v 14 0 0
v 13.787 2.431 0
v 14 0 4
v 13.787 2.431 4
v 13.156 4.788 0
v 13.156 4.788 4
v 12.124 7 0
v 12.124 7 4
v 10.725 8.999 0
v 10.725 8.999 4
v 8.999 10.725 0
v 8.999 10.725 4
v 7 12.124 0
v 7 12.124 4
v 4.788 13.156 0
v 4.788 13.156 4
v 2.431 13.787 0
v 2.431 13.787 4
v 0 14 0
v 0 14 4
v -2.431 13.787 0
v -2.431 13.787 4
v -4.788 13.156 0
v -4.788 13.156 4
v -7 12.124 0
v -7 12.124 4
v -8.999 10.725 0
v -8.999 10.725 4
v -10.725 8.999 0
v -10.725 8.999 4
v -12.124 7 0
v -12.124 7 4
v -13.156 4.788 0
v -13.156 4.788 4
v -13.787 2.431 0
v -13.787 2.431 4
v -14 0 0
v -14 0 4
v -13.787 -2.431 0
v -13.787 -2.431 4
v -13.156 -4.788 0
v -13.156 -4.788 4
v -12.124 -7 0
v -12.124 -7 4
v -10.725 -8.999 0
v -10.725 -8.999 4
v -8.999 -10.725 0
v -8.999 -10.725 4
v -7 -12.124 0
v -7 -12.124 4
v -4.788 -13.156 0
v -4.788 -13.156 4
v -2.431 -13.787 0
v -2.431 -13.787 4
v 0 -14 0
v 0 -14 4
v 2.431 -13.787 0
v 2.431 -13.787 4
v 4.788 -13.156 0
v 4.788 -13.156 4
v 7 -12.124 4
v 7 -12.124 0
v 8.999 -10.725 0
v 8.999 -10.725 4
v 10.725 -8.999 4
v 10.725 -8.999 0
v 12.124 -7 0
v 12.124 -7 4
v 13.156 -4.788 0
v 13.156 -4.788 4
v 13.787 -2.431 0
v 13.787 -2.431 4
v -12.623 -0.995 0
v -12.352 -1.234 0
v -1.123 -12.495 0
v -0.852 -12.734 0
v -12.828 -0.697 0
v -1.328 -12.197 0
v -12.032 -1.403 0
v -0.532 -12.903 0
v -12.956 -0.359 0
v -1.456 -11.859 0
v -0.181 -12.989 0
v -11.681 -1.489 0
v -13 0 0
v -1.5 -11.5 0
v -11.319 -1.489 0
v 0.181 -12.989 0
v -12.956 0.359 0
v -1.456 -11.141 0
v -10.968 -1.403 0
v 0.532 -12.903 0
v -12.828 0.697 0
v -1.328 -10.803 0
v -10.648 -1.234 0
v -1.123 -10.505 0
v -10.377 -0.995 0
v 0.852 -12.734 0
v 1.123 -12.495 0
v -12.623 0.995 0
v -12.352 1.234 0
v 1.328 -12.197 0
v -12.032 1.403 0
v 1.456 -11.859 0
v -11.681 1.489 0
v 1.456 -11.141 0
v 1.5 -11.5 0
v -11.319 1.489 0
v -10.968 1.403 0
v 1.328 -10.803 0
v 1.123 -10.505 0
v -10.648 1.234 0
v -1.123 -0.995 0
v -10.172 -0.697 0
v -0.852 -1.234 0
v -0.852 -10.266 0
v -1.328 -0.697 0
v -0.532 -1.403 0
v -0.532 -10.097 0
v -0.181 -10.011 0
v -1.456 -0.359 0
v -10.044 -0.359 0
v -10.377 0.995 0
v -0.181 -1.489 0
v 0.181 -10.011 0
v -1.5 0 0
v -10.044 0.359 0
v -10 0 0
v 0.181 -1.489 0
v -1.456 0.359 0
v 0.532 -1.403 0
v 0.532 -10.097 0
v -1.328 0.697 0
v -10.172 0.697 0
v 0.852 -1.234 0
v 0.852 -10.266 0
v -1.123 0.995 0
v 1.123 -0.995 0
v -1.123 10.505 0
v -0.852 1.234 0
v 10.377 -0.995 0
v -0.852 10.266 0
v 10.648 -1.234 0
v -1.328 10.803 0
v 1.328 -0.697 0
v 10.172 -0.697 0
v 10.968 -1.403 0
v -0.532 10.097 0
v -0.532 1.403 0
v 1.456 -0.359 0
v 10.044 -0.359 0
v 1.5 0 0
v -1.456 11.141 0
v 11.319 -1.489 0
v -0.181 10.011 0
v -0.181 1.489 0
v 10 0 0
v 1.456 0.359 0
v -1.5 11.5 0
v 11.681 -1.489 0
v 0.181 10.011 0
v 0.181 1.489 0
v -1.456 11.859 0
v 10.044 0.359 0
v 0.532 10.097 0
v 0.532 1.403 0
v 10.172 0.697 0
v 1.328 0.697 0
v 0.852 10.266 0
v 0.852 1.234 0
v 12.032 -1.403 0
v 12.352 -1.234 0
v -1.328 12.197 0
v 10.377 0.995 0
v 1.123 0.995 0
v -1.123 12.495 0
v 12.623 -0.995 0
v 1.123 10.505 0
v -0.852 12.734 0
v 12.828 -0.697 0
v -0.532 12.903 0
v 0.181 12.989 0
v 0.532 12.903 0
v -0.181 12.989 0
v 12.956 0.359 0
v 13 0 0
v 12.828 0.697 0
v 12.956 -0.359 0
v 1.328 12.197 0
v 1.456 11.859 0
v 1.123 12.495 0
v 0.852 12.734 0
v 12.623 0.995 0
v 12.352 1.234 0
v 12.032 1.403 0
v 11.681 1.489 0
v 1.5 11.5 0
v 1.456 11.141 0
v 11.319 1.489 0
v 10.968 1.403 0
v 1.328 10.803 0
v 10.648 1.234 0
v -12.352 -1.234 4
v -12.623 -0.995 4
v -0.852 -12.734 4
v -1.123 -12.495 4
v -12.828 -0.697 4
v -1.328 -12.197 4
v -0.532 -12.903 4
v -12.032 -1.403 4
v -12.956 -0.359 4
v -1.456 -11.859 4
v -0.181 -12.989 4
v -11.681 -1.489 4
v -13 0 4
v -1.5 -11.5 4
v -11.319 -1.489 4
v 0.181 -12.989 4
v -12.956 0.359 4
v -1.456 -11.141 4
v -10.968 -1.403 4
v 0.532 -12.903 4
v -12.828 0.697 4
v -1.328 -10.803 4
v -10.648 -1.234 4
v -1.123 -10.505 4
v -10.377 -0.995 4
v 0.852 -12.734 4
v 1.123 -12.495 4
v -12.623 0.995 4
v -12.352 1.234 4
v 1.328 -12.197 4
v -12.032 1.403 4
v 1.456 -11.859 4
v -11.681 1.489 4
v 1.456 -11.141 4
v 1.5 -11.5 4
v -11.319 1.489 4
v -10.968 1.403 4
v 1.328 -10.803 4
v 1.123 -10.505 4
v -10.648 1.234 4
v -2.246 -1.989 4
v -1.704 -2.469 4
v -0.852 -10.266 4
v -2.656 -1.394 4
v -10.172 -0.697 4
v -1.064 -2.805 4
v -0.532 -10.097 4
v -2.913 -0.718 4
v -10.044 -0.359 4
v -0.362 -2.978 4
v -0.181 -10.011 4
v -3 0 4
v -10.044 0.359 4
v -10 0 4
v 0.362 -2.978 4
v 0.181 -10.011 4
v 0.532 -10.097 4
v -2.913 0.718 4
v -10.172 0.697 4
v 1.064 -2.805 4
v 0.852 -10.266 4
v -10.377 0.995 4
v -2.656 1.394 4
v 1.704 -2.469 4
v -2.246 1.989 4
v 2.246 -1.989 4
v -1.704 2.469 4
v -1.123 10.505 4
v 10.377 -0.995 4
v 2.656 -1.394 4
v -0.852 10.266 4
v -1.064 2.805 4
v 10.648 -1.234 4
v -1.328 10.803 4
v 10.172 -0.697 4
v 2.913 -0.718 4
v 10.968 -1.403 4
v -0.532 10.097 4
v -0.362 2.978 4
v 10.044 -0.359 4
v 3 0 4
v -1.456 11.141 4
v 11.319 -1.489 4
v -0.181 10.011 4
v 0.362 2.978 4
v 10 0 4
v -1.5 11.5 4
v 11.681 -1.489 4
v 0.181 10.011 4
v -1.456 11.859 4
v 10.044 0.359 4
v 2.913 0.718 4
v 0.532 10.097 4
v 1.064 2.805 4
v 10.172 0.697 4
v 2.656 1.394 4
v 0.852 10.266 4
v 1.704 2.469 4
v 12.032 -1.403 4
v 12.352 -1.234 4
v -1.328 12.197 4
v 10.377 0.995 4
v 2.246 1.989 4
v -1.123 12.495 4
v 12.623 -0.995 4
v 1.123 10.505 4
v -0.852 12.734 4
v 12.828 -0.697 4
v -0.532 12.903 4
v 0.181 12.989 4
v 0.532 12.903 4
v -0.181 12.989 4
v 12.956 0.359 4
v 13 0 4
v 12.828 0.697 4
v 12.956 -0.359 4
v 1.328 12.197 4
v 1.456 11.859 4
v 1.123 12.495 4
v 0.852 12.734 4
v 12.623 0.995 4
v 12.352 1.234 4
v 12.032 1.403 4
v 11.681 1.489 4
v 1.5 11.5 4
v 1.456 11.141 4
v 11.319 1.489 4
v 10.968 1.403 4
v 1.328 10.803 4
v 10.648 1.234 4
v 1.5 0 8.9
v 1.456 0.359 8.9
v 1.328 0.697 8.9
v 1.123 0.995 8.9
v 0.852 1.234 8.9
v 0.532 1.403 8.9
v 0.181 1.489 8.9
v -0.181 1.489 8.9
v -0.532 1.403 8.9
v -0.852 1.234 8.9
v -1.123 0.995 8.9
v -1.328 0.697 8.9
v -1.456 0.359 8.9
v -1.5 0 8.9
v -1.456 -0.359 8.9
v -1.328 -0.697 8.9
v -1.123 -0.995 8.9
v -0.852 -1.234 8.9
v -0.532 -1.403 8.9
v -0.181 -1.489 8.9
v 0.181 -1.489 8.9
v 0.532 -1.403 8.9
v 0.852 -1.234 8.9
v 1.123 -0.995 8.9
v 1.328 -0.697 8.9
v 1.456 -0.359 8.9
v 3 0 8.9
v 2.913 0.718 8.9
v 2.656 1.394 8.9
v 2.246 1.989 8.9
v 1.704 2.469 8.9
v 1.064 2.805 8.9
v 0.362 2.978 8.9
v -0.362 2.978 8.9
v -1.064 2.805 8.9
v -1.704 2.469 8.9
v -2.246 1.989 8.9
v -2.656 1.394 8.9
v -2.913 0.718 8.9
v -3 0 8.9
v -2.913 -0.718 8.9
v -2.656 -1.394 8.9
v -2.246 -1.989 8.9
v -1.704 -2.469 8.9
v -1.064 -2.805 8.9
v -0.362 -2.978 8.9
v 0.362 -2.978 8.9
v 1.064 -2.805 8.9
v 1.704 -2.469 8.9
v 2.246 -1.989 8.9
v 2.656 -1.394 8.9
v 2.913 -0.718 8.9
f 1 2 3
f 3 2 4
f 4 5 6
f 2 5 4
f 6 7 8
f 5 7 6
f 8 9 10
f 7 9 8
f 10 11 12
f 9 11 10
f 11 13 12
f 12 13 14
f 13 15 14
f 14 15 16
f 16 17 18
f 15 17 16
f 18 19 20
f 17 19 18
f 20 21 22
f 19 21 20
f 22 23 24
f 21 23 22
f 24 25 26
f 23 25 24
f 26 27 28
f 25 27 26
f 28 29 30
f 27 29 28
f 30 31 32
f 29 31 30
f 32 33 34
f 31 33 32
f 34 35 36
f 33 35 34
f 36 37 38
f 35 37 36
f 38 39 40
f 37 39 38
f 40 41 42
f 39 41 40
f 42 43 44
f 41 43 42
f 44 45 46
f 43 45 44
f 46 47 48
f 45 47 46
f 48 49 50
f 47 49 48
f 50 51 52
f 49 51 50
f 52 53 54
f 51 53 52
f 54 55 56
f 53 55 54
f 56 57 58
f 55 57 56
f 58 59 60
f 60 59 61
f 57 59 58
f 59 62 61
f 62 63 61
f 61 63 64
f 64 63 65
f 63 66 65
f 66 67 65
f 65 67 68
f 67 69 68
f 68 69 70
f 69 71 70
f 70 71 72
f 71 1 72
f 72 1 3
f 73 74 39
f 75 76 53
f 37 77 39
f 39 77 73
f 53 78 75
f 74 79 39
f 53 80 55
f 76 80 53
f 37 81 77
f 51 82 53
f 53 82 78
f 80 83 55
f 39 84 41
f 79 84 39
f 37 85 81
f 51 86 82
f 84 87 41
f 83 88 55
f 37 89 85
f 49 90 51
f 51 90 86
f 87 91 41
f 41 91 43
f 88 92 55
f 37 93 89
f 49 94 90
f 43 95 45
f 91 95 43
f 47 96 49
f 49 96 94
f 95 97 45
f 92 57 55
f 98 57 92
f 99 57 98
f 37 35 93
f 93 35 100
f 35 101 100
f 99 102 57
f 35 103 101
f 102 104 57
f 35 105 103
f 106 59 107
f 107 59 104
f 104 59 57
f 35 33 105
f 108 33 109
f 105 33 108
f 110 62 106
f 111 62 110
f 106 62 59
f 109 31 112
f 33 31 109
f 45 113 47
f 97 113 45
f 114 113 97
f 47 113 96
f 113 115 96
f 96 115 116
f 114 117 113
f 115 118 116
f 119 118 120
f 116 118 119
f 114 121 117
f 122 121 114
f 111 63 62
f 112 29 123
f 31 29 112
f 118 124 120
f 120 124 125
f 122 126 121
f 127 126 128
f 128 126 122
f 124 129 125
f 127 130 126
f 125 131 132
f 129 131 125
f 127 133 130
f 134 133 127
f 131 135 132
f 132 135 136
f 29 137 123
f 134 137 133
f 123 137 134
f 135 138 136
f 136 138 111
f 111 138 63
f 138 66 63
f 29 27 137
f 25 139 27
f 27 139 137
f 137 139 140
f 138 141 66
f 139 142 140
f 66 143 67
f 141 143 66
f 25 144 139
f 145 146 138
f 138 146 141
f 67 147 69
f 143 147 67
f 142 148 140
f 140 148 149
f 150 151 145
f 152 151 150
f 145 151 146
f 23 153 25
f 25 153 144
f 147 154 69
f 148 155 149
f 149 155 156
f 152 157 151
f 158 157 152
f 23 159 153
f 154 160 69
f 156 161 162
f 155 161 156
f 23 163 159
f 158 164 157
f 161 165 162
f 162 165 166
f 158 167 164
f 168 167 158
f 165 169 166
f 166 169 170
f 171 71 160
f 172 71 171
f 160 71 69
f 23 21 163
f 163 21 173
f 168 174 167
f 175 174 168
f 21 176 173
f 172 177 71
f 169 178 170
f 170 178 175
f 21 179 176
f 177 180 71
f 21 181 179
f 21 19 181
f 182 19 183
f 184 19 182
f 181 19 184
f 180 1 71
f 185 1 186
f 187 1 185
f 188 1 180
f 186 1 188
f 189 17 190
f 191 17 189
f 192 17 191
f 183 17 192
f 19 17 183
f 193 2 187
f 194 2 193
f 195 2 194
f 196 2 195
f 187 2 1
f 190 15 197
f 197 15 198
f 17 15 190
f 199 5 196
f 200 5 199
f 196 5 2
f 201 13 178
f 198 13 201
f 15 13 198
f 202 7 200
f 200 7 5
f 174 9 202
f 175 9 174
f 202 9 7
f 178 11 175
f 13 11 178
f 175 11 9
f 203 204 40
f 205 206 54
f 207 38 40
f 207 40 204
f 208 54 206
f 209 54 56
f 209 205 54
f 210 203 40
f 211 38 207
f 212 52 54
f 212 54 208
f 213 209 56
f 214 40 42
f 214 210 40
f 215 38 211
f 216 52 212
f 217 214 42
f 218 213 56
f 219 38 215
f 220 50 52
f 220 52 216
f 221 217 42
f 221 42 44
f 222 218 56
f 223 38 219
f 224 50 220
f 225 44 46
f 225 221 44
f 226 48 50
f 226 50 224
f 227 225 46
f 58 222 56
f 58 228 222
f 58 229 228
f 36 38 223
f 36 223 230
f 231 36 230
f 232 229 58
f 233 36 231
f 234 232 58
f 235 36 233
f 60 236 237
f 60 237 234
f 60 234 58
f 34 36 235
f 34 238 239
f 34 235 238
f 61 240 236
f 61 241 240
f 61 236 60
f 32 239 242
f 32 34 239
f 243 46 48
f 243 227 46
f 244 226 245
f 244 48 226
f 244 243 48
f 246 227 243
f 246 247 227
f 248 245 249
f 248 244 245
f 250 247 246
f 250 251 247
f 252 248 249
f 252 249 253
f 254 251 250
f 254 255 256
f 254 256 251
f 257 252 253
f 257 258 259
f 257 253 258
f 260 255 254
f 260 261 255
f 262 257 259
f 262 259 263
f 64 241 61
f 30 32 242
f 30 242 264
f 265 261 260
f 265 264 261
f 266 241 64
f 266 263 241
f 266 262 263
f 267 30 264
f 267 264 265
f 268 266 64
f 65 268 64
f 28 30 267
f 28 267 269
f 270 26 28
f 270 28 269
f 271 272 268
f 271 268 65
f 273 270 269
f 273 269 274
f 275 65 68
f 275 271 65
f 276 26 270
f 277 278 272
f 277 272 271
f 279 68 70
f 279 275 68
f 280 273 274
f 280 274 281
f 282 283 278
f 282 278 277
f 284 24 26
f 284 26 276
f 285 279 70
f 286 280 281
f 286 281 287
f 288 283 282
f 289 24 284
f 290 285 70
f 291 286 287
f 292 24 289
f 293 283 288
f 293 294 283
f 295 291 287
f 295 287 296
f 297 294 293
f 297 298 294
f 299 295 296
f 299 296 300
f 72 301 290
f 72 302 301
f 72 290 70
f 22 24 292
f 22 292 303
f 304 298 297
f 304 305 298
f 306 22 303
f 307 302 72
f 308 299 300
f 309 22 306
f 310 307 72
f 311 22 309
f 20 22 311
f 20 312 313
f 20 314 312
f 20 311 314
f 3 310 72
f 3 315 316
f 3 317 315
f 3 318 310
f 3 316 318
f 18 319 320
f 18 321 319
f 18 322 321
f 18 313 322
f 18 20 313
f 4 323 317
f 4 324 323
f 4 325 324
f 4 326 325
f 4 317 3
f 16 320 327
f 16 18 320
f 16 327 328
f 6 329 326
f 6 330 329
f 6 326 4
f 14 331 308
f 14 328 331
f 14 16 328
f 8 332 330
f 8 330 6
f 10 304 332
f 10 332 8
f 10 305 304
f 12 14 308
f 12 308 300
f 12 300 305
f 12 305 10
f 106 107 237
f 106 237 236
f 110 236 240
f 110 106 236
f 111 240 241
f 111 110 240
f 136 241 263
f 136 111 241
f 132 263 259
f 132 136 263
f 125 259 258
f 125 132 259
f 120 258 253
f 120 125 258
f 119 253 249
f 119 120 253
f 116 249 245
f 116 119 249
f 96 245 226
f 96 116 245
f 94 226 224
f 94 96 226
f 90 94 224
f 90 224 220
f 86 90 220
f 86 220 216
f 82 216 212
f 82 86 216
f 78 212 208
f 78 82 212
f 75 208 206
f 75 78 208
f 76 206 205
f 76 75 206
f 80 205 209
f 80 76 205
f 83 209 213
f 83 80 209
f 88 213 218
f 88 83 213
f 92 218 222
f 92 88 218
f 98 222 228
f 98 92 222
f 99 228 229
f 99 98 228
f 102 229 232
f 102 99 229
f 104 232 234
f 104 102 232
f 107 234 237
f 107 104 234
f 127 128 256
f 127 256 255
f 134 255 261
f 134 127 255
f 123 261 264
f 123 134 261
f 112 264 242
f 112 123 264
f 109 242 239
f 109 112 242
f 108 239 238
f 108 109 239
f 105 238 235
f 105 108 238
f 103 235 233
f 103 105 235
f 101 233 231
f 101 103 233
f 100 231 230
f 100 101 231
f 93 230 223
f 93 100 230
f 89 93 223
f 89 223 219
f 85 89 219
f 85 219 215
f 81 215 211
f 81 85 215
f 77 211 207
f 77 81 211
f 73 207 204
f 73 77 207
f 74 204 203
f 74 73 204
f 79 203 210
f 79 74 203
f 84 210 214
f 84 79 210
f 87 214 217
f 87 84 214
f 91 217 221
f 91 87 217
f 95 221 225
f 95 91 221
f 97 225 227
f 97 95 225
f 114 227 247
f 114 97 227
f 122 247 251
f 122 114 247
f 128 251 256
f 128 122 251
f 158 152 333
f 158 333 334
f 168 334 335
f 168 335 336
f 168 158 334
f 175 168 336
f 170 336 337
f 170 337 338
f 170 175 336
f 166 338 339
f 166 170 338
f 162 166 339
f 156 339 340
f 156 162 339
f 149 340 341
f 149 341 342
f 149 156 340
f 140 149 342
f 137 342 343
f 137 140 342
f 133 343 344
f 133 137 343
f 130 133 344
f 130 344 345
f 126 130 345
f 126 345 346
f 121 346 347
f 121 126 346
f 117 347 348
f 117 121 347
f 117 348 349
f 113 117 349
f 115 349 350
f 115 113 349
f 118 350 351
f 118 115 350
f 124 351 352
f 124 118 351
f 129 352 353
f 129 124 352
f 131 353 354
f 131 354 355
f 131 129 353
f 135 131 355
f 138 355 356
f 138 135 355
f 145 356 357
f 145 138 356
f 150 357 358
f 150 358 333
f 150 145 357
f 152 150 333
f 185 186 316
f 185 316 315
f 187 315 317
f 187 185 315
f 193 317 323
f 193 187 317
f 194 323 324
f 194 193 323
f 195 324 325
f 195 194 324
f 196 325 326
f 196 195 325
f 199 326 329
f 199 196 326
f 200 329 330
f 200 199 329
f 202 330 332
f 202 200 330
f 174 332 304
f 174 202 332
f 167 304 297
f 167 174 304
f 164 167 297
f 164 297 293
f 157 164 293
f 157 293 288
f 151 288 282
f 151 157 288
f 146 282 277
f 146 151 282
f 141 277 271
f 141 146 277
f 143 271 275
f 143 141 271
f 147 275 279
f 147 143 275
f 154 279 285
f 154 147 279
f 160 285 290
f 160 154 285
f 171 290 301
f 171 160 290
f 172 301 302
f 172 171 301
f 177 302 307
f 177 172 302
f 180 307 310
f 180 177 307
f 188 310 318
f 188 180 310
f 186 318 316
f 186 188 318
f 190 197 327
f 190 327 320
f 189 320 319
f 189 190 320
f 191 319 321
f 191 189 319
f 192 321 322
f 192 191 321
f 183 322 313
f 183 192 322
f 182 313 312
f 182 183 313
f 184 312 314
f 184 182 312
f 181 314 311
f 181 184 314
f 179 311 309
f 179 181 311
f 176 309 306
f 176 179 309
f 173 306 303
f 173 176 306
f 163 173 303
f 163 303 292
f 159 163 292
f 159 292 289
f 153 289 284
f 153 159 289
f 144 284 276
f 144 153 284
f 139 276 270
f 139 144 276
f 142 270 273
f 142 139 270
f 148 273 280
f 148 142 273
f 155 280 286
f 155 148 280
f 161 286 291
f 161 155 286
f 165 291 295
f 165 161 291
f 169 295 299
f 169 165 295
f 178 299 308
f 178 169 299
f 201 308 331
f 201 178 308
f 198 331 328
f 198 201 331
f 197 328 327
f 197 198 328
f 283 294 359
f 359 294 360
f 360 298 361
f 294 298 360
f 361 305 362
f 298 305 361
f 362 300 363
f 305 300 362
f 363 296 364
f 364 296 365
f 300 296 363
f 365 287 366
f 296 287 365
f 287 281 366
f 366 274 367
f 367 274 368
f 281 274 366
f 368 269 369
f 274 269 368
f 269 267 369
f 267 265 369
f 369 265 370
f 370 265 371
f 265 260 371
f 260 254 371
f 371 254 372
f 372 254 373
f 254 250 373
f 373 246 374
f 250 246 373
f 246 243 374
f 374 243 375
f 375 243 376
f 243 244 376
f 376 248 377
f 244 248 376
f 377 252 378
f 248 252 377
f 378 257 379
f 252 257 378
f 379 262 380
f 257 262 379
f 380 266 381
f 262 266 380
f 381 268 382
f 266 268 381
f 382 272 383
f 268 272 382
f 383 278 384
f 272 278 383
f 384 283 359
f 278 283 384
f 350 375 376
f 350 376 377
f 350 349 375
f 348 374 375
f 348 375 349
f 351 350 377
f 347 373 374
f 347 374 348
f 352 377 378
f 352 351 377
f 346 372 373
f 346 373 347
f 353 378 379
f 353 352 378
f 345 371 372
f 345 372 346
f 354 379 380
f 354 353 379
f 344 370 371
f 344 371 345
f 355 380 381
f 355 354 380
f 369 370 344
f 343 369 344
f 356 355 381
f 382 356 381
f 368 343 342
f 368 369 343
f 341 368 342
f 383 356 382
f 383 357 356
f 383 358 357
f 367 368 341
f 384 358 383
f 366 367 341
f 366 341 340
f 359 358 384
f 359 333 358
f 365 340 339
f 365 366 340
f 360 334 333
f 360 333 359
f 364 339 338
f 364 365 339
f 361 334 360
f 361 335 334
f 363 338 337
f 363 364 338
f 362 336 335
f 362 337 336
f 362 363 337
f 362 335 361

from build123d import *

# Parameters (mm, degrees)
SKETCH003_R   = 1.5
PAD003_DEPTH  = 8.9
SKETCH002_R   = 3
PAD002_DEPTH  = 4.9
SKETCH001_R   = 14
SKETCH001_R_2 = 1.5
PAD001_DEPTH  = 4


with BuildPart() as body003:
    # Sketch003 → Pad003 (new body)
    with BuildSketch(Plane.XY):
        Circle(SKETCH003_R)
    extrude(amount=PAD003_DEPTH)


with BuildPart() as body002:
    # Sketch002 (on DatumPlane) → Pad002 (new body)
    with BuildSketch(Plane.XY.offset(4)):
        Circle(SKETCH002_R)
    extrude(amount=PAD002_DEPTH)


with BuildPart() as cut:
    # Sketch001 → Pad001 (new body)
    with BuildSketch(Plane.XY):
        Circle(SKETCH001_R)
        with Locations((-11.5, 0)):
            Circle(SKETCH001_R_2, mode=Mode.SUBTRACT)
        with Locations((11.5, 0)):
            Circle(SKETCH001_R_2, mode=Mode.SUBTRACT)
        with Locations((0, 11.5)):
            Circle(SKETCH001_R_2, mode=Mode.SUBTRACT)
        with Locations((0, -11.5)):
            Circle(SKETCH001_R_2, mode=Mode.SUBTRACT)
    extrude(amount=PAD001_DEPTH)

    # Fusion: union Body002
    add(body002.part)

    # Cut: cut Body003
    add(body003.part, mode=Mode.SUBTRACT)


solid = cut.part
